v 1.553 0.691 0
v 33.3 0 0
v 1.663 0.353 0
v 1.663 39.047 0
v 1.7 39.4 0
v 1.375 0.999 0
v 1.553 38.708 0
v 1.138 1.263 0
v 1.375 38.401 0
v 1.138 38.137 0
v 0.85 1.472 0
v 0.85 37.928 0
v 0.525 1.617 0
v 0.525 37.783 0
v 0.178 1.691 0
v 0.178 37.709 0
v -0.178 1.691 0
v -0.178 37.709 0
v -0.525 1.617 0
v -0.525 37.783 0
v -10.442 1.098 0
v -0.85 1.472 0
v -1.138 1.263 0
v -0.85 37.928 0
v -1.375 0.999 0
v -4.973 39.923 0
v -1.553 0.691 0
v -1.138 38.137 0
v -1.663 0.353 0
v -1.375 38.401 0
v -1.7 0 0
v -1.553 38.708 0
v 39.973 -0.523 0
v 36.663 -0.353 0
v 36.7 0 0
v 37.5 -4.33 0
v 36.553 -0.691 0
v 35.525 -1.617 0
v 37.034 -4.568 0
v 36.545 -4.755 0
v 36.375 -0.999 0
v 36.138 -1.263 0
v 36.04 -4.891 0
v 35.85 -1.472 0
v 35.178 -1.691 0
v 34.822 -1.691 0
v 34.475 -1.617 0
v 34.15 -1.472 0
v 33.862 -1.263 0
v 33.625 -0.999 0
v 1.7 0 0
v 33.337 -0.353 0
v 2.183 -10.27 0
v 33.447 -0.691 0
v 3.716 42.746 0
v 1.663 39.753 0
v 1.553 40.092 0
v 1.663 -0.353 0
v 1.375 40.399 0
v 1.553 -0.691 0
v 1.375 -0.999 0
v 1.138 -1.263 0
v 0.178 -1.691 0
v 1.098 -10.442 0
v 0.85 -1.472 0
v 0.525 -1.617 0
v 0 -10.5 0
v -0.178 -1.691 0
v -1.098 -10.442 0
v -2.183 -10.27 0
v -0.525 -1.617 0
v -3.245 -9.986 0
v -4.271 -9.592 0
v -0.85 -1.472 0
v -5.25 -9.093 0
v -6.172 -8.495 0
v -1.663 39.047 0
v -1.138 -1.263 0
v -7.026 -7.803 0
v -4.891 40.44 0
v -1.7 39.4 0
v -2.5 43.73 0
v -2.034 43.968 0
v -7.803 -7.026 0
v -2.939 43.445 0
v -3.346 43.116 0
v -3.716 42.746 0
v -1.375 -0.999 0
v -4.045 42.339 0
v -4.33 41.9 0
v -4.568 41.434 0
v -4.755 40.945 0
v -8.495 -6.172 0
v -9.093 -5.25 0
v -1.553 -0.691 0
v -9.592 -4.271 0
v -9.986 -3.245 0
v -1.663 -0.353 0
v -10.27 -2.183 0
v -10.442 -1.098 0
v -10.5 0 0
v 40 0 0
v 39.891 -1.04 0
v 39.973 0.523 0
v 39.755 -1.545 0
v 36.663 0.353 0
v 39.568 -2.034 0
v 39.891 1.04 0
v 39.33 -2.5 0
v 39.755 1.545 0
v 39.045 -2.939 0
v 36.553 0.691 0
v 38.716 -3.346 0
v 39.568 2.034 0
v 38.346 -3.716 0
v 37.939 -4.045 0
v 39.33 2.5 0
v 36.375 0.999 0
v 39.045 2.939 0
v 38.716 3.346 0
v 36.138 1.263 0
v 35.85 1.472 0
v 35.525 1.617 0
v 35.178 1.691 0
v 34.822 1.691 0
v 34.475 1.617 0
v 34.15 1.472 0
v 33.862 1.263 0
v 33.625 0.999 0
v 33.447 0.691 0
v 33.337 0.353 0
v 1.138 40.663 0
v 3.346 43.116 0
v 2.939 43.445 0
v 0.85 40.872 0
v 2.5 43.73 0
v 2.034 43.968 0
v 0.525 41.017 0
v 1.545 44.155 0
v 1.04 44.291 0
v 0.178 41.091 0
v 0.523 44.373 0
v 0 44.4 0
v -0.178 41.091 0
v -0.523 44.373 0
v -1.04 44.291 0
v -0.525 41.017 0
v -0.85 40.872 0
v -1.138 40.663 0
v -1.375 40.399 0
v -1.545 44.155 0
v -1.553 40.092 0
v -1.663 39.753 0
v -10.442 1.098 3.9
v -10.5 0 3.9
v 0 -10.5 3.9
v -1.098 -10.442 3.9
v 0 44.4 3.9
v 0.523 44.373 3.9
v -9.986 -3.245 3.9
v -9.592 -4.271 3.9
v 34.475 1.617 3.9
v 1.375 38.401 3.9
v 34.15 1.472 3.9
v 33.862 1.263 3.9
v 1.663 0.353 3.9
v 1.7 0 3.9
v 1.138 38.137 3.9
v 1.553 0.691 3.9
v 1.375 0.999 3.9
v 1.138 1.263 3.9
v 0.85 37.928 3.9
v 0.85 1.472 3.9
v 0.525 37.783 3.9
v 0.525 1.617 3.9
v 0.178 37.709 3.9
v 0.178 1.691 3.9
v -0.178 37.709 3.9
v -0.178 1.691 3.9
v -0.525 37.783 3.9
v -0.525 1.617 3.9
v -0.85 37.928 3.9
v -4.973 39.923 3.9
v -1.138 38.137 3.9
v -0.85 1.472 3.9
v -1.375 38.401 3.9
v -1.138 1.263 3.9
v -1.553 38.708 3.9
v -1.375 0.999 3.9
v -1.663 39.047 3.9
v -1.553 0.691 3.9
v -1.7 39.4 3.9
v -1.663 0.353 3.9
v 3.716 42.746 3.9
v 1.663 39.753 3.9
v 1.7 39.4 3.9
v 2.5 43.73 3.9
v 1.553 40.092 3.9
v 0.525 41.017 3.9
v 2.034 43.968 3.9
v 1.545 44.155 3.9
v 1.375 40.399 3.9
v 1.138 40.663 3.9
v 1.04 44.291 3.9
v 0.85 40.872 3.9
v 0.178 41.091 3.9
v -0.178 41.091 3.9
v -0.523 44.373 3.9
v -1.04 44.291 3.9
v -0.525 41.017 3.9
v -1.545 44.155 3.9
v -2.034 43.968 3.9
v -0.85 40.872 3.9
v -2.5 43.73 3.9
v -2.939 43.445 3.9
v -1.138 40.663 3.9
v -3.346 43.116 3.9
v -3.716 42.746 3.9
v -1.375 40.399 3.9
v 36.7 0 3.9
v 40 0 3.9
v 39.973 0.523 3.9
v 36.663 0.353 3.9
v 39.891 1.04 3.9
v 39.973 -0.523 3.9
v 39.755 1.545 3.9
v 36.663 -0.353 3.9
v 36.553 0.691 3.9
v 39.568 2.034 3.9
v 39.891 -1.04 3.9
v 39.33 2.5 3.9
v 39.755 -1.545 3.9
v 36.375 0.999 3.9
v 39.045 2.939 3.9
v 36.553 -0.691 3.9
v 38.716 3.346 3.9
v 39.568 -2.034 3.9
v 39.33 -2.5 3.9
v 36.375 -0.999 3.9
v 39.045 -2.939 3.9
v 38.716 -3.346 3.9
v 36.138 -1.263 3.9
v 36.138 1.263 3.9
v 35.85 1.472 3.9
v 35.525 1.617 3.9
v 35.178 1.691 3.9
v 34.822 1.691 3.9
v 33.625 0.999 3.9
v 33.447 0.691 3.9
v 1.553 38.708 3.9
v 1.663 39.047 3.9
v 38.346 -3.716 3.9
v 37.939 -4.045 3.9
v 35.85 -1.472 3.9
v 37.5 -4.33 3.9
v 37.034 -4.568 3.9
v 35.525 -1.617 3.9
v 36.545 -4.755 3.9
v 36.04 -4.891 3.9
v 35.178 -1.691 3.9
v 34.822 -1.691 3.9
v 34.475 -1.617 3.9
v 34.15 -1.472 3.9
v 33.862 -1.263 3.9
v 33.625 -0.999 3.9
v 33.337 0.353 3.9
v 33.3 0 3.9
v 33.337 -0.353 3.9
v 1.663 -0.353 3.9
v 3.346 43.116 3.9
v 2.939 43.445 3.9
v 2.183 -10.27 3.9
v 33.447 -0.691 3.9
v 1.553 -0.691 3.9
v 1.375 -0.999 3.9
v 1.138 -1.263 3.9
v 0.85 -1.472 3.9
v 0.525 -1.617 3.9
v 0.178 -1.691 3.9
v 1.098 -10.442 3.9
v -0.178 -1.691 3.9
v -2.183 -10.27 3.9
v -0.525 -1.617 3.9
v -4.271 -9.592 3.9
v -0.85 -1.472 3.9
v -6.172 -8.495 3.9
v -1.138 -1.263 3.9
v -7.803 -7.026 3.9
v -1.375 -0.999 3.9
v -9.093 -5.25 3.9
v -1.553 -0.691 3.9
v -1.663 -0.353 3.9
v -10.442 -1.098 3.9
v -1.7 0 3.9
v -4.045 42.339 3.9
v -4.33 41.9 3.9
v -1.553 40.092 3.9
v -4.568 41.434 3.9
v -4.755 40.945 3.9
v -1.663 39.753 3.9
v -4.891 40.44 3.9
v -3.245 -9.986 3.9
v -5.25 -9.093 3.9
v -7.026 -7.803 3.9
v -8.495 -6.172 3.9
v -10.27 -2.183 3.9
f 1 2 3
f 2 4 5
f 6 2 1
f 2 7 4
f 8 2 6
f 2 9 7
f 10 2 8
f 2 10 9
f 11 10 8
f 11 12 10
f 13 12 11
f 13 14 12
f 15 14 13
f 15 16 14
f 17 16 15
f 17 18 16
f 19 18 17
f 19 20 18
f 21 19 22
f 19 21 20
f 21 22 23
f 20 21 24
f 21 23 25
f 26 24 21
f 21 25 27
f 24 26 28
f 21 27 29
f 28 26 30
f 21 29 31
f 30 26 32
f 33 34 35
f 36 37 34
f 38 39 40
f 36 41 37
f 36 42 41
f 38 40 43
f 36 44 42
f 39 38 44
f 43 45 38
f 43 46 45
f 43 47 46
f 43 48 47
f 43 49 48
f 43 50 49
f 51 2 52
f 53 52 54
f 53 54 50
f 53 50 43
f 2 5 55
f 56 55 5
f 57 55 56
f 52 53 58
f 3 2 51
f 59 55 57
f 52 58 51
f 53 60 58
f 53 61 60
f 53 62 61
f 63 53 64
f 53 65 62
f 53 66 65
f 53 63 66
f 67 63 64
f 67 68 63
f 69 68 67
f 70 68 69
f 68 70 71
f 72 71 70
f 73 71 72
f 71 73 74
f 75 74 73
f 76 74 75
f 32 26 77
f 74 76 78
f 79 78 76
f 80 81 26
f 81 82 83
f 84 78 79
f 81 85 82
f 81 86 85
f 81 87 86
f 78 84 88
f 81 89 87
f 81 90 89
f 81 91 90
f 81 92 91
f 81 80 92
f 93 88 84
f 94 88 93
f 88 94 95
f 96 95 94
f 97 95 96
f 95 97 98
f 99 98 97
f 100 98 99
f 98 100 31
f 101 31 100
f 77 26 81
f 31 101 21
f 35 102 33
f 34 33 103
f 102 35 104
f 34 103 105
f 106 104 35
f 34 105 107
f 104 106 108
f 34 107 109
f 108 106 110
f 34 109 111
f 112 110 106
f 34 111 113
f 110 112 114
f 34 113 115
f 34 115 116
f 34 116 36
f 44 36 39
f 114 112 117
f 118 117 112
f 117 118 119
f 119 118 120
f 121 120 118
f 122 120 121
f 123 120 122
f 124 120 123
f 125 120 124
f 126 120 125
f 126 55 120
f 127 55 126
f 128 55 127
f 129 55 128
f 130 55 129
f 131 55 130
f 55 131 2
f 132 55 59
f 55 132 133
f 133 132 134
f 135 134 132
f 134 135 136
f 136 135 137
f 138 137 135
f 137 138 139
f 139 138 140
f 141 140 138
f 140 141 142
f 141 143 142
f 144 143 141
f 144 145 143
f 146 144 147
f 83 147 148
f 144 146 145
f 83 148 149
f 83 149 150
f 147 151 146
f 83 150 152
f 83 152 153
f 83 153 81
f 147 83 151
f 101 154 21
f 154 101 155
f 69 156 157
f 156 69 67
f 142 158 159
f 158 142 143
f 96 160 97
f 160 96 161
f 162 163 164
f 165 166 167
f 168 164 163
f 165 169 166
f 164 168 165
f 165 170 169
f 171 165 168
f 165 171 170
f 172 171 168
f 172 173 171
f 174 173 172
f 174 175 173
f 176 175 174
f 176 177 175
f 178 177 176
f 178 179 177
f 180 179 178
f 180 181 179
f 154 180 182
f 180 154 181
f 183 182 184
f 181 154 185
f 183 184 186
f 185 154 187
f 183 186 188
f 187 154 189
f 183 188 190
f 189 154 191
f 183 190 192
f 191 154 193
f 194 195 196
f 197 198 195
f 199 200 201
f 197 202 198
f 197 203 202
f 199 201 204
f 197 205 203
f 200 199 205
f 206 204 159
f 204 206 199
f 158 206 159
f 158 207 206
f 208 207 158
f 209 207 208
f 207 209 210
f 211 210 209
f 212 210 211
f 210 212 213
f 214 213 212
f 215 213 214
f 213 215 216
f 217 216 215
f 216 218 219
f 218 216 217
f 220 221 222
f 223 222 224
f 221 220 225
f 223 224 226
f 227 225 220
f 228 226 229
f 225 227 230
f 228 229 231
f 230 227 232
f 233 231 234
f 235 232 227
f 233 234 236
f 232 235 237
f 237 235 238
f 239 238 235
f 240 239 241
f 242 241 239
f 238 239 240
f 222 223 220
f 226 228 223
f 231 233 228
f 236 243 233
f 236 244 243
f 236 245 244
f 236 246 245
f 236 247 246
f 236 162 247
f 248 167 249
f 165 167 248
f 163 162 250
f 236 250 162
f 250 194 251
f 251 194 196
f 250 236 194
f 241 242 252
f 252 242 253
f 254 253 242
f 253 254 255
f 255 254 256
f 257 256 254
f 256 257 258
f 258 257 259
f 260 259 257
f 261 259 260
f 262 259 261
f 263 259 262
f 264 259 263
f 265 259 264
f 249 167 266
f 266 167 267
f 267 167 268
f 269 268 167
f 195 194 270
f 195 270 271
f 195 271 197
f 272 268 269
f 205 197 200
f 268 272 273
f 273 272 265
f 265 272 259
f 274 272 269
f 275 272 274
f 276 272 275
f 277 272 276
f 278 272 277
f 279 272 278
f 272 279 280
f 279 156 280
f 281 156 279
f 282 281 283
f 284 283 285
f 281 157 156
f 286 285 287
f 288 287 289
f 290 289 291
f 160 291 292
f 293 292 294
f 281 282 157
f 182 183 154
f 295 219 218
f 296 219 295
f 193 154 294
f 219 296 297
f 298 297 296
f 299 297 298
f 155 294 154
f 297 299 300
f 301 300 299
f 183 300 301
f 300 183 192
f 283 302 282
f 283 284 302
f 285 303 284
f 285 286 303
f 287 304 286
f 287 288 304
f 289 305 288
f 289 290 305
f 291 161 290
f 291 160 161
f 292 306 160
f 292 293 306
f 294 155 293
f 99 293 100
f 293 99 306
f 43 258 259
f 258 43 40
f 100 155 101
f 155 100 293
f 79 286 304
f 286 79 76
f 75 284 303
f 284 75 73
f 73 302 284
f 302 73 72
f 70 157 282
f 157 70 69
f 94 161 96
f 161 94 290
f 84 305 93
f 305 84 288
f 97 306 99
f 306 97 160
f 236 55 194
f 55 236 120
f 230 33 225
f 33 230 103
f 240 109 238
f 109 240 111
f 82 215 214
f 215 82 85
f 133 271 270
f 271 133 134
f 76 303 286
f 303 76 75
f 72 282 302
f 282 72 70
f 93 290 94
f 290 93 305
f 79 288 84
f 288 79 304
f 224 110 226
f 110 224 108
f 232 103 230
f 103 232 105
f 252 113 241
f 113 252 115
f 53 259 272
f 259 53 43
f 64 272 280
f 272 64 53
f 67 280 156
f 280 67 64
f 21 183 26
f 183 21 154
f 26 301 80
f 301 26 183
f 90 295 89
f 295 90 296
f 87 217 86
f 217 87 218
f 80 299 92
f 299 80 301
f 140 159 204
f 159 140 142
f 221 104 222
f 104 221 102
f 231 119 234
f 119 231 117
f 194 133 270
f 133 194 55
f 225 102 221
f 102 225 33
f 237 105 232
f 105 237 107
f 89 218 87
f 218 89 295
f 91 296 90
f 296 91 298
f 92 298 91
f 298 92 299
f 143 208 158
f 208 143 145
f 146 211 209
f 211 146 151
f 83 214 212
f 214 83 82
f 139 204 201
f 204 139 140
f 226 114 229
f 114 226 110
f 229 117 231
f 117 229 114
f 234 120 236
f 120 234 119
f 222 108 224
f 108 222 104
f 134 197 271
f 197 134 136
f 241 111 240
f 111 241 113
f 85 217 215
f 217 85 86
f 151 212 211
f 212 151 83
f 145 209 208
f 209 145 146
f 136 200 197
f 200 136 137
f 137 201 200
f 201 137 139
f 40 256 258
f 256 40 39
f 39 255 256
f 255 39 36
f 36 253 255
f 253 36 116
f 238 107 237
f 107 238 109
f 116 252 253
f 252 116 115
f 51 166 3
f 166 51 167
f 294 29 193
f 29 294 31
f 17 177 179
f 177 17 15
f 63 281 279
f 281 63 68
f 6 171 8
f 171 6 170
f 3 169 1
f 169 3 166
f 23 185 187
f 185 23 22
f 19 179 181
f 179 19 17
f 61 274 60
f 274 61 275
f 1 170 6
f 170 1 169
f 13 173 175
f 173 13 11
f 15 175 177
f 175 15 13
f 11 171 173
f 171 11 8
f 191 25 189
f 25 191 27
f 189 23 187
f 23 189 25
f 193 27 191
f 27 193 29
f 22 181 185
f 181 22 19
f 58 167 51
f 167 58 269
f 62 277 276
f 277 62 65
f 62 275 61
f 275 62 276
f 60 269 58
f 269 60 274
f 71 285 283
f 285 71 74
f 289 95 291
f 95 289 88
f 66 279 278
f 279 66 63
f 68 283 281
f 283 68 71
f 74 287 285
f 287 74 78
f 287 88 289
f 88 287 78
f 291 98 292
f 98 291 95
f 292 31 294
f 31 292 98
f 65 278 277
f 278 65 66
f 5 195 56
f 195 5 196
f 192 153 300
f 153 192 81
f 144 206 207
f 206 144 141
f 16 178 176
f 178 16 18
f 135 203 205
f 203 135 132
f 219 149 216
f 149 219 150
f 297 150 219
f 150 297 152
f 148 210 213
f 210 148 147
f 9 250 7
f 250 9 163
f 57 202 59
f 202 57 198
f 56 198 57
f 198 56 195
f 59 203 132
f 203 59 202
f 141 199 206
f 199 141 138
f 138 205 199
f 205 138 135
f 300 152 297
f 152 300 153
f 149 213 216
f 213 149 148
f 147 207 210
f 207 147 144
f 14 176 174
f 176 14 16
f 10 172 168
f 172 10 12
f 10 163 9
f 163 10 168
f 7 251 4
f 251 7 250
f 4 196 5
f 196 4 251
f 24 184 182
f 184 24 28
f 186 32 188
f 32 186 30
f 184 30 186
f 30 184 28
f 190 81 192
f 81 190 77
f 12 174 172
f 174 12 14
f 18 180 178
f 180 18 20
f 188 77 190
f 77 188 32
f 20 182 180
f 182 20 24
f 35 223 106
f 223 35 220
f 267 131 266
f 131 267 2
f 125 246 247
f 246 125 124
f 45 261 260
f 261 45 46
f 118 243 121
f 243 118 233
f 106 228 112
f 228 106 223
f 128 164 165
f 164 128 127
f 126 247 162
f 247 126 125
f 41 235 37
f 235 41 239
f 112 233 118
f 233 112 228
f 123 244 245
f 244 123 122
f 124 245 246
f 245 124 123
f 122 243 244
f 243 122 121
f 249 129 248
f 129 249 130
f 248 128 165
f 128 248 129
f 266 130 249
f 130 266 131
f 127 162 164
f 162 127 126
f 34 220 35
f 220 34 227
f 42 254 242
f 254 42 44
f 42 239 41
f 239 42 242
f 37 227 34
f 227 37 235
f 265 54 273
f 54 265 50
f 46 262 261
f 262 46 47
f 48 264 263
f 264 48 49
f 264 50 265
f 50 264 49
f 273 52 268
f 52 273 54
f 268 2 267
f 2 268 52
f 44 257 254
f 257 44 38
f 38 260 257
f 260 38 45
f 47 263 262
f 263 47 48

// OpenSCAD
//general
$fn = 30;                  //convexity of general curved faces
thickness = 3.9;             //thickness of arm

//circular servo horn measurements
horn_diameter = 21;             //diameter of the circular horn

//arm specific stuff
lever_length = 39.4;             //length of lever bit on end of arm
support_height = 35;             //height between the supporting beam and the other beam going to the gripper

pivot_diameter = 10;            //diameter of pivoting end
free_turning3mm = 3.4;          //diameter of hole for free turning motion

difference(){
   hull(){
      cylinder(d=horn_diameter,h=thickness, $fn = 60);
      translate([0,lever_length,0])
      cylinder(d=pivot_diameter,h=thickness, $fn = 60);
      translate([support_height, 0, 0])
      cylinder(d=pivot_diameter, h=thickness, $fn = 60);
   }
   cylinder(d=free_turning3mm,h=thickness);
   translate([0,lever_length,0])
   cylinder(d=free_turning3mm,h=thickness);
   translate([support_height, 0,0])
   cylinder(d=free_turning3mm,h=thickness);
}
